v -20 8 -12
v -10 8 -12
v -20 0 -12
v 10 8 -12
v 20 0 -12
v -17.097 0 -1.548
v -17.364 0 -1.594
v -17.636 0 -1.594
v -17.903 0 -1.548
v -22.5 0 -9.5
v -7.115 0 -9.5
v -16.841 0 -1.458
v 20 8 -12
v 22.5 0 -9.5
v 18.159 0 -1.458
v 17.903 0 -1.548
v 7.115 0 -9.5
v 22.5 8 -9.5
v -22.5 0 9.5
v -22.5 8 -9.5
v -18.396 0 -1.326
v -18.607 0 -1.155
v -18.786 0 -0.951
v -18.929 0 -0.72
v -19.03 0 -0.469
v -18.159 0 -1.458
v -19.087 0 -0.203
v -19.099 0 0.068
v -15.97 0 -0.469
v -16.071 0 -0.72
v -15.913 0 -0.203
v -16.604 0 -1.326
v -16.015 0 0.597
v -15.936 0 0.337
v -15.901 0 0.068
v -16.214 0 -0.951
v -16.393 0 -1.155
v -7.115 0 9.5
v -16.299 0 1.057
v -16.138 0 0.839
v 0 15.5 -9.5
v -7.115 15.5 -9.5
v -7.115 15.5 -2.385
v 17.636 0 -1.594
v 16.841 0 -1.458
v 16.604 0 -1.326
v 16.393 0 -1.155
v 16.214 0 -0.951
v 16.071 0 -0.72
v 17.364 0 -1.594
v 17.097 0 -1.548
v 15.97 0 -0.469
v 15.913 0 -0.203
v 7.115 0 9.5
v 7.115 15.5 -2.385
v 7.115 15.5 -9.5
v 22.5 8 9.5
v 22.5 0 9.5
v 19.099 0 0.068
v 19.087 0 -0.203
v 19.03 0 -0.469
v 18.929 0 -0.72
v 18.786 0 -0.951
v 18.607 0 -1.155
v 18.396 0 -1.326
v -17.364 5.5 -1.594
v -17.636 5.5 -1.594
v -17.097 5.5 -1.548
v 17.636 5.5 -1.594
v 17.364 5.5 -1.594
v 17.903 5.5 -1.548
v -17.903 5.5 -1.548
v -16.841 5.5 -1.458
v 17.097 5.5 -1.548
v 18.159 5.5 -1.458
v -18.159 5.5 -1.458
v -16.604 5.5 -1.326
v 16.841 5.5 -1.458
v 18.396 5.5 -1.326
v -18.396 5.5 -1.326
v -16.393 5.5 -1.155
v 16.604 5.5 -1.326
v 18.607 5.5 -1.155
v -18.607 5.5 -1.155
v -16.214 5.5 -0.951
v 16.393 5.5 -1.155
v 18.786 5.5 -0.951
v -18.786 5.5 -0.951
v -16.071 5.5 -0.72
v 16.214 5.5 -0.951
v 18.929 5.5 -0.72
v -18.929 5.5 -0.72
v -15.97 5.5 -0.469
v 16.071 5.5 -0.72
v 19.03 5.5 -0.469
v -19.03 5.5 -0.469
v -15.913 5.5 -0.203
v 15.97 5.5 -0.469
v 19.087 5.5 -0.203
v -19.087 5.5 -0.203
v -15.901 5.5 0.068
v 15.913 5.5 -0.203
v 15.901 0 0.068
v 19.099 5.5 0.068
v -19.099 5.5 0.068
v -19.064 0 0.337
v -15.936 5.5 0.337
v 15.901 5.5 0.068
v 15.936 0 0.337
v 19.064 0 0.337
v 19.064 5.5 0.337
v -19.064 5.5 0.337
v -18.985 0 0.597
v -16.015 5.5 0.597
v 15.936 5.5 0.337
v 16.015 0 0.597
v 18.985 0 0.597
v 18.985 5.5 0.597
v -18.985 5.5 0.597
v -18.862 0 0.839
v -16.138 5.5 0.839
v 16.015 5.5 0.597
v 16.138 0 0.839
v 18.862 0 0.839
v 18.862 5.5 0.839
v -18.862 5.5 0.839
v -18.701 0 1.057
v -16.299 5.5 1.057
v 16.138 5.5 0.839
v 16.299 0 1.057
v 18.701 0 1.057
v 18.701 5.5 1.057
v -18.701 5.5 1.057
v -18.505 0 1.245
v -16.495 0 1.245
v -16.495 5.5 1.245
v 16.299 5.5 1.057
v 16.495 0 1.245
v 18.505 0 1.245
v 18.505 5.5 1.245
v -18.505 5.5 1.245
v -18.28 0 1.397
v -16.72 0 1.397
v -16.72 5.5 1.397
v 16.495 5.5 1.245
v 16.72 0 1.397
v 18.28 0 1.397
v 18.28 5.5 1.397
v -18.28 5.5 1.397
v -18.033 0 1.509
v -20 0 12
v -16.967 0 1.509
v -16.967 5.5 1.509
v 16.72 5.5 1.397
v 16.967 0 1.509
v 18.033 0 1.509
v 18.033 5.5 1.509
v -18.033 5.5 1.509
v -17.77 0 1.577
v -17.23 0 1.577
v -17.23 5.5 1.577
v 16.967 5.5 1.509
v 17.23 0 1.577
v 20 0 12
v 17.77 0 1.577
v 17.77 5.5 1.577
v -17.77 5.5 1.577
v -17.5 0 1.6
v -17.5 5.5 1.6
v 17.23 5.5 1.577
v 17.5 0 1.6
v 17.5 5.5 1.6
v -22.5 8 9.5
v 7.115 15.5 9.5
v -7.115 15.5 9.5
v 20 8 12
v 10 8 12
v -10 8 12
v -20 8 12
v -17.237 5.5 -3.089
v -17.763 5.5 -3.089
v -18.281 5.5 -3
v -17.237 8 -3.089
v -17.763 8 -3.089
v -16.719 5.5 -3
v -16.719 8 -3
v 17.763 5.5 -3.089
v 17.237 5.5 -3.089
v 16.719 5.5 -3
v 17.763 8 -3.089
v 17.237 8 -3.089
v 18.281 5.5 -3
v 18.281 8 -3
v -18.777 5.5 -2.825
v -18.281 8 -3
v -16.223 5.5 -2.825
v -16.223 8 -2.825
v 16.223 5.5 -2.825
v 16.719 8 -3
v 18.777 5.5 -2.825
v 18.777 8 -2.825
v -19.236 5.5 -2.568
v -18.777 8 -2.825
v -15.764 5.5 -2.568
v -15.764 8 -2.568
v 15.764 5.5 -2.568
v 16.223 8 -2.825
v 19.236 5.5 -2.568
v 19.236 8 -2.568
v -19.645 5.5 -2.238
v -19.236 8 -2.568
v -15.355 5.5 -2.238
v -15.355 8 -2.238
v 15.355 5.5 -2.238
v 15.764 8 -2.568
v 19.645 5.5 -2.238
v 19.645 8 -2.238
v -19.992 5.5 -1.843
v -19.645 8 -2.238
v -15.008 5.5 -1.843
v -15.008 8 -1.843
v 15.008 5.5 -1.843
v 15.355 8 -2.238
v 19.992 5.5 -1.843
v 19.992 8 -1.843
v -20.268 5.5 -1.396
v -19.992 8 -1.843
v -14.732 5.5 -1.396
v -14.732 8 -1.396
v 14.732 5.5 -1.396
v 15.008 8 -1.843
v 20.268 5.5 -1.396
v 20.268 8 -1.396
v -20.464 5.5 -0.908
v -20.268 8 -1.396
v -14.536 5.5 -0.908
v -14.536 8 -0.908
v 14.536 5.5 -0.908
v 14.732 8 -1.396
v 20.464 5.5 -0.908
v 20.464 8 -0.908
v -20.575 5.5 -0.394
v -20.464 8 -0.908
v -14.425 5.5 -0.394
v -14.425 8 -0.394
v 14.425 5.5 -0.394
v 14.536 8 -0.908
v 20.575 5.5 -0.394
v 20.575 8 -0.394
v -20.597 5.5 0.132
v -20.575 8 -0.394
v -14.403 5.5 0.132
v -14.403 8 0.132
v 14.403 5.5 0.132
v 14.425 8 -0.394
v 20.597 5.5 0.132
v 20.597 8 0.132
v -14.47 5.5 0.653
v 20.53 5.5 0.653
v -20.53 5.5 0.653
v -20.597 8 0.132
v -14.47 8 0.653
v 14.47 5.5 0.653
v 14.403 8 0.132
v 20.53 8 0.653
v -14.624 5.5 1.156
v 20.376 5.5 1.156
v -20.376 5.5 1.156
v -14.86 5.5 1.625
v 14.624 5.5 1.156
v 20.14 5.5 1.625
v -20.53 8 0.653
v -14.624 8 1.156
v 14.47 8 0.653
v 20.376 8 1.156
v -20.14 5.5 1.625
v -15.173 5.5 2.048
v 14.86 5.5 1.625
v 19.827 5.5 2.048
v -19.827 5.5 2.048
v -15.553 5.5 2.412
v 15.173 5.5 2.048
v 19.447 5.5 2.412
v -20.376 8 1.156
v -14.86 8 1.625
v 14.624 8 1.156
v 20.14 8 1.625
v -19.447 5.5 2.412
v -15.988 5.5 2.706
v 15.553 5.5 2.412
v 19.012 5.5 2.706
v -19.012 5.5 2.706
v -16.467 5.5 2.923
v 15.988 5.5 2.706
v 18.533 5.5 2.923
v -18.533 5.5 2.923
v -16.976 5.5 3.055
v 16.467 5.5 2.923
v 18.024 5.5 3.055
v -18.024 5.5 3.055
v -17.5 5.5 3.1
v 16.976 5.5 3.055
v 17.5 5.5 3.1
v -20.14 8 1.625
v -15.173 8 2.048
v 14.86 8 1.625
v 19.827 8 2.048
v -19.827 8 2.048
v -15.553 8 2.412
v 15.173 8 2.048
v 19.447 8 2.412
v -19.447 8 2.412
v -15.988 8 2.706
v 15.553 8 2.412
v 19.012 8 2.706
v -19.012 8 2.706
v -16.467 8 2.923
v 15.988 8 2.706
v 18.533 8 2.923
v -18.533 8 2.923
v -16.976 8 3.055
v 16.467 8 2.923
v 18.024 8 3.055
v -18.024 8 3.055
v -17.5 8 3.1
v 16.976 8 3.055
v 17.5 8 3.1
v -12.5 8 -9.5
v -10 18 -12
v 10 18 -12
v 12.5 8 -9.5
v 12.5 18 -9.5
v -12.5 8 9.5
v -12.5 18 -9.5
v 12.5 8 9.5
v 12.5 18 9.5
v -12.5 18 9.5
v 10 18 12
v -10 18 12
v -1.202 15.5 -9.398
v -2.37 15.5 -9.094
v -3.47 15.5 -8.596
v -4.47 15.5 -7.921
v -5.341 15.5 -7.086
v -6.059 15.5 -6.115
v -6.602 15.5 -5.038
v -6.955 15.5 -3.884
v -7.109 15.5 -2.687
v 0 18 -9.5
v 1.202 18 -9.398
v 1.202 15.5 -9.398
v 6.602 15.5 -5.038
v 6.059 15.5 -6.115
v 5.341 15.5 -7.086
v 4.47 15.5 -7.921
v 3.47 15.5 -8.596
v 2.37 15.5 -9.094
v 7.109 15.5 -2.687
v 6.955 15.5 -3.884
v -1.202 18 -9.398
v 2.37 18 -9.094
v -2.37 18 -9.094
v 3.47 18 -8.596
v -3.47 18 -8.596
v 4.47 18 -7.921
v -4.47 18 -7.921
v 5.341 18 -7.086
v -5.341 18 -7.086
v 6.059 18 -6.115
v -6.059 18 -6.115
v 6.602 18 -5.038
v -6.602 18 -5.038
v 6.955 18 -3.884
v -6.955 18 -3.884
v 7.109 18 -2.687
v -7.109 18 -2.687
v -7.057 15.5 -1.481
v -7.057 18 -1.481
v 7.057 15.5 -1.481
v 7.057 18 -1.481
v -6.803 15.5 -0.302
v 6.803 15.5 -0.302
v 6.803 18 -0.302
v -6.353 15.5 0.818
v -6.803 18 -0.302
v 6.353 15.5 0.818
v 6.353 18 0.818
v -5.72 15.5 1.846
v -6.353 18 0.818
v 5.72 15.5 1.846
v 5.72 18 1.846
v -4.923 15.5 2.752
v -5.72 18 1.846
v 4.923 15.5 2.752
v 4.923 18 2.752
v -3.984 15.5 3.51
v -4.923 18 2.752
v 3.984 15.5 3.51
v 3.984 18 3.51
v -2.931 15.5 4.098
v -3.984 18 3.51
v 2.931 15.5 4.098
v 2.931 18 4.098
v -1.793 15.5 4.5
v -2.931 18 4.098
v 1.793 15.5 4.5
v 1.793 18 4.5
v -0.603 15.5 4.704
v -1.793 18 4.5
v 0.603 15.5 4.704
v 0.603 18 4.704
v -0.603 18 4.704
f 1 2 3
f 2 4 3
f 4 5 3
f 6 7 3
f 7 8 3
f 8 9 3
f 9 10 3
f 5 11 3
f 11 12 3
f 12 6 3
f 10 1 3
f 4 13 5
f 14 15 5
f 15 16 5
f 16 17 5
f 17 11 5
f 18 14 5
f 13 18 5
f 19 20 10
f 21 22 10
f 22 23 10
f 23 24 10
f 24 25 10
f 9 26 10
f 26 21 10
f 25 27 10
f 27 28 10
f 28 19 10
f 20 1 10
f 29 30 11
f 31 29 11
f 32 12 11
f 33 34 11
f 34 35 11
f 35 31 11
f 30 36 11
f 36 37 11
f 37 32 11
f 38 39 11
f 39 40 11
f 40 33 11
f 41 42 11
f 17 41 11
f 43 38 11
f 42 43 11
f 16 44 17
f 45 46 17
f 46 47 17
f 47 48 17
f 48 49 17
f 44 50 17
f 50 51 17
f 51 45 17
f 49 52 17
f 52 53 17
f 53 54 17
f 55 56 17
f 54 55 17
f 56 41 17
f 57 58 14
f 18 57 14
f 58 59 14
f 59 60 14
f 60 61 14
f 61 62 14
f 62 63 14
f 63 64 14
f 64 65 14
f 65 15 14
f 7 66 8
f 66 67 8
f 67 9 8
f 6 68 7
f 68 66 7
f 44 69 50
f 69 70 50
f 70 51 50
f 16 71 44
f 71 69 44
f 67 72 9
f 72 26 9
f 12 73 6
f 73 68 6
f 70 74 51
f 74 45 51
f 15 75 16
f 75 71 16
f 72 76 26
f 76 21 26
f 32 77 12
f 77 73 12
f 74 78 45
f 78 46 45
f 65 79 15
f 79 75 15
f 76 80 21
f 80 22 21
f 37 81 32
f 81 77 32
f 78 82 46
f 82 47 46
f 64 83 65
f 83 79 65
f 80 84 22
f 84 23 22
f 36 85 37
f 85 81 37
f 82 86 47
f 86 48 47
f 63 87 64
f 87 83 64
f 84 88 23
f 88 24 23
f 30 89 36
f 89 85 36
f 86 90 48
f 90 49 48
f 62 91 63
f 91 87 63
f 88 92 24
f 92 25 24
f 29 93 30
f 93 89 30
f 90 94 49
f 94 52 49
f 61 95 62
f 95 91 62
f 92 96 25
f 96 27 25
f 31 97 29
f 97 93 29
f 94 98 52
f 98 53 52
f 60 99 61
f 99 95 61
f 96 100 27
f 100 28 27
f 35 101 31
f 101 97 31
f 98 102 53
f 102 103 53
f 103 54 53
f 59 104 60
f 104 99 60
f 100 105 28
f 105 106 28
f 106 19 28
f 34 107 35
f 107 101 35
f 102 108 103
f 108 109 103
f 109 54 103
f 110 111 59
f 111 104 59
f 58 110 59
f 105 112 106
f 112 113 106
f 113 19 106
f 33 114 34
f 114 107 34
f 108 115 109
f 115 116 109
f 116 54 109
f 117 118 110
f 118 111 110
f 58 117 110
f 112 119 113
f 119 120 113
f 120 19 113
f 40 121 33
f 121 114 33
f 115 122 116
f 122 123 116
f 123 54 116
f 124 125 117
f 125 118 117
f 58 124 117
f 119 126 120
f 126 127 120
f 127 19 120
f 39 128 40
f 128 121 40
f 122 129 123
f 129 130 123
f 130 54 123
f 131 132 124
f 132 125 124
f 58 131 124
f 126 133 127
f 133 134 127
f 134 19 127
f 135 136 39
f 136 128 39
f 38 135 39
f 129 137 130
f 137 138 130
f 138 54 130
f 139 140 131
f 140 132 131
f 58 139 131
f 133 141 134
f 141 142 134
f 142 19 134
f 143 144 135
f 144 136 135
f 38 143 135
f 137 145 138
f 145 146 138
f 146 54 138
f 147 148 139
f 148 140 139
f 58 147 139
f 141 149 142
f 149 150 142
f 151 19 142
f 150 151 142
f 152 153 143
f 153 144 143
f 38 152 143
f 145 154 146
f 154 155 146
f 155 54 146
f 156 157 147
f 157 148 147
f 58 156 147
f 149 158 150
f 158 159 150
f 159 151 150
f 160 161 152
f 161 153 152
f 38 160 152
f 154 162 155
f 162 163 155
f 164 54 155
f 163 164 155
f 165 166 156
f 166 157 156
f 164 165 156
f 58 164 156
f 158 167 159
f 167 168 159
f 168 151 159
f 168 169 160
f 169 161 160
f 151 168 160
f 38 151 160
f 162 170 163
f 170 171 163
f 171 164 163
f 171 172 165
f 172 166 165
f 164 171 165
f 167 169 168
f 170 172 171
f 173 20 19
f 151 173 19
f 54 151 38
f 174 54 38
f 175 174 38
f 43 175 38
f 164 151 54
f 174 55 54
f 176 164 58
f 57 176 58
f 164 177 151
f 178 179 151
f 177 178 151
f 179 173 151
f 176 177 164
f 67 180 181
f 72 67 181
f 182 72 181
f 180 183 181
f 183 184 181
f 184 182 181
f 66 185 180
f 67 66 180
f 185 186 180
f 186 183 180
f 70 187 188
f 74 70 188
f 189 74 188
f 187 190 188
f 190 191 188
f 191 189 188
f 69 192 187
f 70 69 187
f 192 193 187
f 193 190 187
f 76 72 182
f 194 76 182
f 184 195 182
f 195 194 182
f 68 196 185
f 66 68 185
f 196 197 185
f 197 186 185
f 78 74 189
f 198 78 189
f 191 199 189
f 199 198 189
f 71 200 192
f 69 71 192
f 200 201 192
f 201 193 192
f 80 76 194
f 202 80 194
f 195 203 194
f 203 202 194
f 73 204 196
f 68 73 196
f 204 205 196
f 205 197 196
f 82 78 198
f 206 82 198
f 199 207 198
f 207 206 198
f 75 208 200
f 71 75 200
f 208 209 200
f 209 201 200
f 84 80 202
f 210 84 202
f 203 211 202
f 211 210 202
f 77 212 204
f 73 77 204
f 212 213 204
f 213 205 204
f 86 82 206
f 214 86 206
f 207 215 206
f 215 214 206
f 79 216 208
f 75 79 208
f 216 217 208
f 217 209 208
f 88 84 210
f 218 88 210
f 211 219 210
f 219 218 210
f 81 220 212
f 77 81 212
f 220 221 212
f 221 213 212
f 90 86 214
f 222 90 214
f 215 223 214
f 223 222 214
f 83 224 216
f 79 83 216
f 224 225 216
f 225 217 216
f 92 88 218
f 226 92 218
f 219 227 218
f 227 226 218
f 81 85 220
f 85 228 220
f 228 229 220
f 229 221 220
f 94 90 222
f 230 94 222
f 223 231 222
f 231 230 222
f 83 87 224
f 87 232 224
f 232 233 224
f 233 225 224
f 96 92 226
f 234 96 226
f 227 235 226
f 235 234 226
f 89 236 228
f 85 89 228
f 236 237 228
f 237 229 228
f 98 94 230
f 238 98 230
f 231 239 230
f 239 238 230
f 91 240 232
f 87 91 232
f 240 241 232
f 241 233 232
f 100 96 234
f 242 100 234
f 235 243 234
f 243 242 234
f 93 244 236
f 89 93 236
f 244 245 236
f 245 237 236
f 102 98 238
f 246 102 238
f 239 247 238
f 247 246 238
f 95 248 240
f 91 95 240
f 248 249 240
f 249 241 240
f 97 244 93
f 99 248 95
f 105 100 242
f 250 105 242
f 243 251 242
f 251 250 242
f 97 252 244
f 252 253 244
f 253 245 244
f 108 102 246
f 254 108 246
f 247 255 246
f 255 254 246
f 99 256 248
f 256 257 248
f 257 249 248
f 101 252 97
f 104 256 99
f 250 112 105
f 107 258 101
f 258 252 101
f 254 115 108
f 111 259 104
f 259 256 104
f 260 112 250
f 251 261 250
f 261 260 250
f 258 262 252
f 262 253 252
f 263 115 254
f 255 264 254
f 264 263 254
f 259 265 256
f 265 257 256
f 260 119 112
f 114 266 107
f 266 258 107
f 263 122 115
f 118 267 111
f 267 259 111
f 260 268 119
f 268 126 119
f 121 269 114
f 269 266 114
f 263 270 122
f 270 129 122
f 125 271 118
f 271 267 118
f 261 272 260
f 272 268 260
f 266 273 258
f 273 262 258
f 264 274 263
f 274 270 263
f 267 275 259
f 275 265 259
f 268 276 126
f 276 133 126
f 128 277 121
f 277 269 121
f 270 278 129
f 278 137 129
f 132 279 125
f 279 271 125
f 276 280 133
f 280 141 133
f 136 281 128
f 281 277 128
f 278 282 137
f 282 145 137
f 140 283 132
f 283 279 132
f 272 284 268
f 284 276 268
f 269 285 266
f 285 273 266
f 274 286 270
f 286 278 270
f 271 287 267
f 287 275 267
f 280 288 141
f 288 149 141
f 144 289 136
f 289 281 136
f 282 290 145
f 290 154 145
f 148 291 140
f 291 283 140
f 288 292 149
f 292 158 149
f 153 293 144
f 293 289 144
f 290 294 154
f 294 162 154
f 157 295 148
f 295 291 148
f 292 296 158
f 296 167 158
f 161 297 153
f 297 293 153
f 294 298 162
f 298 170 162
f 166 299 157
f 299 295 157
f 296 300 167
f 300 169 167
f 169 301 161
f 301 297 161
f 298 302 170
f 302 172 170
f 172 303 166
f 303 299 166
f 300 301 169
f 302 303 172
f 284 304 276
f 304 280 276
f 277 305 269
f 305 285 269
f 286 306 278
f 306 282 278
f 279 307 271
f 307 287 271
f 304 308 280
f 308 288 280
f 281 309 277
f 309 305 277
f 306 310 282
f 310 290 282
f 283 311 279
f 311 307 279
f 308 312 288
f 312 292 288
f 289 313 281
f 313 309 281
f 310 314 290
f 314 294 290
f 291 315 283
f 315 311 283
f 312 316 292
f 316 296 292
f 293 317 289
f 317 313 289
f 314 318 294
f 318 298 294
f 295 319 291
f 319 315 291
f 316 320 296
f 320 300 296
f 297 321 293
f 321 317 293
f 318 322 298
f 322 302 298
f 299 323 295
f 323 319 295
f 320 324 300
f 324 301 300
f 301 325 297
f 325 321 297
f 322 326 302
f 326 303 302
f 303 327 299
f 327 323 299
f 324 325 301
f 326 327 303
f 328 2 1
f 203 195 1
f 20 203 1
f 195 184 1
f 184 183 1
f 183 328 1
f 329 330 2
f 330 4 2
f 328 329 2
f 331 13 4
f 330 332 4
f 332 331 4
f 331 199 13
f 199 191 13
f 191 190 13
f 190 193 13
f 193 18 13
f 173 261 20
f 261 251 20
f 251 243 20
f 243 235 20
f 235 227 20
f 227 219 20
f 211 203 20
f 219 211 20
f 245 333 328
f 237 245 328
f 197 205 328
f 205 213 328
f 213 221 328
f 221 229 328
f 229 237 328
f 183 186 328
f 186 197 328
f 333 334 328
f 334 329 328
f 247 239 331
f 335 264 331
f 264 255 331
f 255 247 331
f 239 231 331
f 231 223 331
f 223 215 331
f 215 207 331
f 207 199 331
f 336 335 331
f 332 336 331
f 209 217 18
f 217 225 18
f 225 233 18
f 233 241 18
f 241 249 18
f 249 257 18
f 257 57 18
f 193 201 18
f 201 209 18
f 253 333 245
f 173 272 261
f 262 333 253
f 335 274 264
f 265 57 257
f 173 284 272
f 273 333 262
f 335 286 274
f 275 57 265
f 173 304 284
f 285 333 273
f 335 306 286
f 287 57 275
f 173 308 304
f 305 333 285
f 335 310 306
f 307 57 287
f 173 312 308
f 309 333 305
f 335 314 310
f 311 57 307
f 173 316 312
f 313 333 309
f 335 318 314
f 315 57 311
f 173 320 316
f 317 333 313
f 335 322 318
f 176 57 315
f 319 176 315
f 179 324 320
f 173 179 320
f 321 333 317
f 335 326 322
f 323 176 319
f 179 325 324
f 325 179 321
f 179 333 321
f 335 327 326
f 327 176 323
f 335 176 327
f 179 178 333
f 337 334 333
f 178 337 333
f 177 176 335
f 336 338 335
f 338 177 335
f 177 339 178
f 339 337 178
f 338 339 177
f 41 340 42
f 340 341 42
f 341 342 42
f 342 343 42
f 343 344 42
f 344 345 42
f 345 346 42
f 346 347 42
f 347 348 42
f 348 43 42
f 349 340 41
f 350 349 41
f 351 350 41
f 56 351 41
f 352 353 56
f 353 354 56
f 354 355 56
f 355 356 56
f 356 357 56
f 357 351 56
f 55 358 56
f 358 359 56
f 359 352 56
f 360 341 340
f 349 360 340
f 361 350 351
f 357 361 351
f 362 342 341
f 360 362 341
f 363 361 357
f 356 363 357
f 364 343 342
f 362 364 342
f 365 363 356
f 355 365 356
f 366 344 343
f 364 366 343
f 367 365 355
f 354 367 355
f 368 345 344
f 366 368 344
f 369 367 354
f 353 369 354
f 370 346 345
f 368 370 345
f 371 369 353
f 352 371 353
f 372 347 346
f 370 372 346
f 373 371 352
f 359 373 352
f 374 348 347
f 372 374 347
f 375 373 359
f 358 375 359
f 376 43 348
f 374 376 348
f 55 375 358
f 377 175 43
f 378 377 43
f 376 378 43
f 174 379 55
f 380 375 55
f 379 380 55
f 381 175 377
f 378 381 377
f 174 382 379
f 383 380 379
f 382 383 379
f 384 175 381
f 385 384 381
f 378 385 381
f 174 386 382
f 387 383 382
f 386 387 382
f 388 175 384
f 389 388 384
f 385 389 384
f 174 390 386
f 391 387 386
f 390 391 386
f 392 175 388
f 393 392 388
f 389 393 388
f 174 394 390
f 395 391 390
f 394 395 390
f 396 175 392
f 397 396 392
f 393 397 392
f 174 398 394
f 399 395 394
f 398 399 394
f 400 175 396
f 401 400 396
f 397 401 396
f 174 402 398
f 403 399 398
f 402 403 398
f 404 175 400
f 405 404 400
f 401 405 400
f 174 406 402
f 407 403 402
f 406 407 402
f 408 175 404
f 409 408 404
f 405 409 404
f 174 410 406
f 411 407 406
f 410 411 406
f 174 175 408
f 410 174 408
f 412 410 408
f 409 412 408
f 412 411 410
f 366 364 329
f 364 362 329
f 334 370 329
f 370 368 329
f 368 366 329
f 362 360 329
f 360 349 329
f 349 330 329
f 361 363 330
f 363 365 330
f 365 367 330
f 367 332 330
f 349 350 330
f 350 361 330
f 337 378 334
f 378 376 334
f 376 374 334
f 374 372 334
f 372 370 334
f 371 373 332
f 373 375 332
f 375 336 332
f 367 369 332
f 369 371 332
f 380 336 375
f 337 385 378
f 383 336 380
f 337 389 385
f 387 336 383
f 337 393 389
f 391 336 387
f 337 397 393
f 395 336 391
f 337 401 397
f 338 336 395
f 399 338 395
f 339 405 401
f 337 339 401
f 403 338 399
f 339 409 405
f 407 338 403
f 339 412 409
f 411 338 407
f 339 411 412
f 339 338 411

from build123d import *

# Parameters (mm, degrees)
SKETCH1_W           = 45
SKETCH1_H           = 24
BOSS_EXTRUDE1_DEPTH = 18
SKETCH2_W           = 10
SKETCH2_H           = 24
CUT_EXTRUDE1_DEPTH  = 10
SKETCH3_R           = 1.6
CUT_EXTRUDE2_DEPTH  = 9
SKETCH4_R           = 3.1
CUT_EXTRUDE3_DEPTH  = 2.5
SKETCH5_W           = 14.23
SKETCH5_H           = 19
CUT_EXTRUDE4_DEPTH  = 15.5
SKETCH6_R           = 7.115
CUT_EXTRUDE5_DEPTH  = 3.5
CHAMFER1_SIZE       = 2.5


with BuildPart() as part:
    # Sketch1 → Boss-Extrude1 (new body)
    with BuildSketch(Plane(origin=(0, 0, 0), x_dir=(1, 0, 0), z_dir=(0, 1, 0))):
        Rectangle(SKETCH1_W, SKETCH1_H)
    extrude(amount=BOSS_EXTRUDE1_DEPTH)

    # Sketch2 → Cut-Extrude1 (cut)
    with BuildSketch(Plane(origin=(0, 18, 0), x_dir=(1, 0, 0), z_dir=(0, 1, 0))):
        with Locations((-17.5, 0)):
            Rectangle(SKETCH2_W, SKETCH2_H)
        with Locations((17.5, 0)):
            Rectangle(SKETCH2_W, SKETCH2_H)
    extrude(amount=-CUT_EXTRUDE1_DEPTH, mode=Mode.SUBTRACT)

    # Sketch3 → Cut-Extrude2 (cut, through all)
    with BuildSketch(Plane(origin=(0, 8, 0), x_dir=(1, 0, 0), z_dir=(0, 1, 0))):
        with Locations((-17.5, 0)):
            Circle(SKETCH3_R)
        with Locations((17.5, 0)):
            Circle(SKETCH3_R)
    extrude(amount=-CUT_EXTRUDE2_DEPTH, mode=Mode.SUBTRACT)

    # Sketch4 → Cut-Extrude3 (cut)
    with BuildSketch(Plane(origin=(0, 8, 0), x_dir=(1, 0, 0), z_dir=(0, 1, 0))):
        with Locations((-17.5, 0)):
            Circle(SKETCH4_R)
        with Locations((17.5, 0)):
            Circle(SKETCH4_R)
    extrude(amount=-CUT_EXTRUDE3_DEPTH, mode=Mode.SUBTRACT)

    # Sketch5 → Cut-Extrude4 (cut)
    with BuildSketch(Plane.XZ):
        Rectangle(SKETCH5_W, SKETCH5_H)
    extrude(amount=-CUT_EXTRUDE4_DEPTH, mode=Mode.SUBTRACT)

    # Sketch6 → Cut-Extrude5 (cut, through all)
    with BuildSketch(Plane.XZ.offset(-15.5)):
        with Locations((0, -2.385)):
            Circle(SKETCH6_R)
    extrude(amount=-CUT_EXTRUDE5_DEPTH, mode=Mode.SUBTRACT)

    # Chamfer1
    chamfer1_edges = [part.edges().sort_by_distance(p)[0] for p in [
        (-22.5, 4, -12),
        (22.5, 4, -12),
        (22.5, 4, 12),
        (-22.5, 4, 12),
        (-12.5, 13, 12),
        (-12.5, 13, -12),
        (12.5, 13, -12),
        (12.5, 13, 12),
    ]]
    chamfer(chamfer1_edges, length=CHAMFER1_SIZE)


solid = part.part
